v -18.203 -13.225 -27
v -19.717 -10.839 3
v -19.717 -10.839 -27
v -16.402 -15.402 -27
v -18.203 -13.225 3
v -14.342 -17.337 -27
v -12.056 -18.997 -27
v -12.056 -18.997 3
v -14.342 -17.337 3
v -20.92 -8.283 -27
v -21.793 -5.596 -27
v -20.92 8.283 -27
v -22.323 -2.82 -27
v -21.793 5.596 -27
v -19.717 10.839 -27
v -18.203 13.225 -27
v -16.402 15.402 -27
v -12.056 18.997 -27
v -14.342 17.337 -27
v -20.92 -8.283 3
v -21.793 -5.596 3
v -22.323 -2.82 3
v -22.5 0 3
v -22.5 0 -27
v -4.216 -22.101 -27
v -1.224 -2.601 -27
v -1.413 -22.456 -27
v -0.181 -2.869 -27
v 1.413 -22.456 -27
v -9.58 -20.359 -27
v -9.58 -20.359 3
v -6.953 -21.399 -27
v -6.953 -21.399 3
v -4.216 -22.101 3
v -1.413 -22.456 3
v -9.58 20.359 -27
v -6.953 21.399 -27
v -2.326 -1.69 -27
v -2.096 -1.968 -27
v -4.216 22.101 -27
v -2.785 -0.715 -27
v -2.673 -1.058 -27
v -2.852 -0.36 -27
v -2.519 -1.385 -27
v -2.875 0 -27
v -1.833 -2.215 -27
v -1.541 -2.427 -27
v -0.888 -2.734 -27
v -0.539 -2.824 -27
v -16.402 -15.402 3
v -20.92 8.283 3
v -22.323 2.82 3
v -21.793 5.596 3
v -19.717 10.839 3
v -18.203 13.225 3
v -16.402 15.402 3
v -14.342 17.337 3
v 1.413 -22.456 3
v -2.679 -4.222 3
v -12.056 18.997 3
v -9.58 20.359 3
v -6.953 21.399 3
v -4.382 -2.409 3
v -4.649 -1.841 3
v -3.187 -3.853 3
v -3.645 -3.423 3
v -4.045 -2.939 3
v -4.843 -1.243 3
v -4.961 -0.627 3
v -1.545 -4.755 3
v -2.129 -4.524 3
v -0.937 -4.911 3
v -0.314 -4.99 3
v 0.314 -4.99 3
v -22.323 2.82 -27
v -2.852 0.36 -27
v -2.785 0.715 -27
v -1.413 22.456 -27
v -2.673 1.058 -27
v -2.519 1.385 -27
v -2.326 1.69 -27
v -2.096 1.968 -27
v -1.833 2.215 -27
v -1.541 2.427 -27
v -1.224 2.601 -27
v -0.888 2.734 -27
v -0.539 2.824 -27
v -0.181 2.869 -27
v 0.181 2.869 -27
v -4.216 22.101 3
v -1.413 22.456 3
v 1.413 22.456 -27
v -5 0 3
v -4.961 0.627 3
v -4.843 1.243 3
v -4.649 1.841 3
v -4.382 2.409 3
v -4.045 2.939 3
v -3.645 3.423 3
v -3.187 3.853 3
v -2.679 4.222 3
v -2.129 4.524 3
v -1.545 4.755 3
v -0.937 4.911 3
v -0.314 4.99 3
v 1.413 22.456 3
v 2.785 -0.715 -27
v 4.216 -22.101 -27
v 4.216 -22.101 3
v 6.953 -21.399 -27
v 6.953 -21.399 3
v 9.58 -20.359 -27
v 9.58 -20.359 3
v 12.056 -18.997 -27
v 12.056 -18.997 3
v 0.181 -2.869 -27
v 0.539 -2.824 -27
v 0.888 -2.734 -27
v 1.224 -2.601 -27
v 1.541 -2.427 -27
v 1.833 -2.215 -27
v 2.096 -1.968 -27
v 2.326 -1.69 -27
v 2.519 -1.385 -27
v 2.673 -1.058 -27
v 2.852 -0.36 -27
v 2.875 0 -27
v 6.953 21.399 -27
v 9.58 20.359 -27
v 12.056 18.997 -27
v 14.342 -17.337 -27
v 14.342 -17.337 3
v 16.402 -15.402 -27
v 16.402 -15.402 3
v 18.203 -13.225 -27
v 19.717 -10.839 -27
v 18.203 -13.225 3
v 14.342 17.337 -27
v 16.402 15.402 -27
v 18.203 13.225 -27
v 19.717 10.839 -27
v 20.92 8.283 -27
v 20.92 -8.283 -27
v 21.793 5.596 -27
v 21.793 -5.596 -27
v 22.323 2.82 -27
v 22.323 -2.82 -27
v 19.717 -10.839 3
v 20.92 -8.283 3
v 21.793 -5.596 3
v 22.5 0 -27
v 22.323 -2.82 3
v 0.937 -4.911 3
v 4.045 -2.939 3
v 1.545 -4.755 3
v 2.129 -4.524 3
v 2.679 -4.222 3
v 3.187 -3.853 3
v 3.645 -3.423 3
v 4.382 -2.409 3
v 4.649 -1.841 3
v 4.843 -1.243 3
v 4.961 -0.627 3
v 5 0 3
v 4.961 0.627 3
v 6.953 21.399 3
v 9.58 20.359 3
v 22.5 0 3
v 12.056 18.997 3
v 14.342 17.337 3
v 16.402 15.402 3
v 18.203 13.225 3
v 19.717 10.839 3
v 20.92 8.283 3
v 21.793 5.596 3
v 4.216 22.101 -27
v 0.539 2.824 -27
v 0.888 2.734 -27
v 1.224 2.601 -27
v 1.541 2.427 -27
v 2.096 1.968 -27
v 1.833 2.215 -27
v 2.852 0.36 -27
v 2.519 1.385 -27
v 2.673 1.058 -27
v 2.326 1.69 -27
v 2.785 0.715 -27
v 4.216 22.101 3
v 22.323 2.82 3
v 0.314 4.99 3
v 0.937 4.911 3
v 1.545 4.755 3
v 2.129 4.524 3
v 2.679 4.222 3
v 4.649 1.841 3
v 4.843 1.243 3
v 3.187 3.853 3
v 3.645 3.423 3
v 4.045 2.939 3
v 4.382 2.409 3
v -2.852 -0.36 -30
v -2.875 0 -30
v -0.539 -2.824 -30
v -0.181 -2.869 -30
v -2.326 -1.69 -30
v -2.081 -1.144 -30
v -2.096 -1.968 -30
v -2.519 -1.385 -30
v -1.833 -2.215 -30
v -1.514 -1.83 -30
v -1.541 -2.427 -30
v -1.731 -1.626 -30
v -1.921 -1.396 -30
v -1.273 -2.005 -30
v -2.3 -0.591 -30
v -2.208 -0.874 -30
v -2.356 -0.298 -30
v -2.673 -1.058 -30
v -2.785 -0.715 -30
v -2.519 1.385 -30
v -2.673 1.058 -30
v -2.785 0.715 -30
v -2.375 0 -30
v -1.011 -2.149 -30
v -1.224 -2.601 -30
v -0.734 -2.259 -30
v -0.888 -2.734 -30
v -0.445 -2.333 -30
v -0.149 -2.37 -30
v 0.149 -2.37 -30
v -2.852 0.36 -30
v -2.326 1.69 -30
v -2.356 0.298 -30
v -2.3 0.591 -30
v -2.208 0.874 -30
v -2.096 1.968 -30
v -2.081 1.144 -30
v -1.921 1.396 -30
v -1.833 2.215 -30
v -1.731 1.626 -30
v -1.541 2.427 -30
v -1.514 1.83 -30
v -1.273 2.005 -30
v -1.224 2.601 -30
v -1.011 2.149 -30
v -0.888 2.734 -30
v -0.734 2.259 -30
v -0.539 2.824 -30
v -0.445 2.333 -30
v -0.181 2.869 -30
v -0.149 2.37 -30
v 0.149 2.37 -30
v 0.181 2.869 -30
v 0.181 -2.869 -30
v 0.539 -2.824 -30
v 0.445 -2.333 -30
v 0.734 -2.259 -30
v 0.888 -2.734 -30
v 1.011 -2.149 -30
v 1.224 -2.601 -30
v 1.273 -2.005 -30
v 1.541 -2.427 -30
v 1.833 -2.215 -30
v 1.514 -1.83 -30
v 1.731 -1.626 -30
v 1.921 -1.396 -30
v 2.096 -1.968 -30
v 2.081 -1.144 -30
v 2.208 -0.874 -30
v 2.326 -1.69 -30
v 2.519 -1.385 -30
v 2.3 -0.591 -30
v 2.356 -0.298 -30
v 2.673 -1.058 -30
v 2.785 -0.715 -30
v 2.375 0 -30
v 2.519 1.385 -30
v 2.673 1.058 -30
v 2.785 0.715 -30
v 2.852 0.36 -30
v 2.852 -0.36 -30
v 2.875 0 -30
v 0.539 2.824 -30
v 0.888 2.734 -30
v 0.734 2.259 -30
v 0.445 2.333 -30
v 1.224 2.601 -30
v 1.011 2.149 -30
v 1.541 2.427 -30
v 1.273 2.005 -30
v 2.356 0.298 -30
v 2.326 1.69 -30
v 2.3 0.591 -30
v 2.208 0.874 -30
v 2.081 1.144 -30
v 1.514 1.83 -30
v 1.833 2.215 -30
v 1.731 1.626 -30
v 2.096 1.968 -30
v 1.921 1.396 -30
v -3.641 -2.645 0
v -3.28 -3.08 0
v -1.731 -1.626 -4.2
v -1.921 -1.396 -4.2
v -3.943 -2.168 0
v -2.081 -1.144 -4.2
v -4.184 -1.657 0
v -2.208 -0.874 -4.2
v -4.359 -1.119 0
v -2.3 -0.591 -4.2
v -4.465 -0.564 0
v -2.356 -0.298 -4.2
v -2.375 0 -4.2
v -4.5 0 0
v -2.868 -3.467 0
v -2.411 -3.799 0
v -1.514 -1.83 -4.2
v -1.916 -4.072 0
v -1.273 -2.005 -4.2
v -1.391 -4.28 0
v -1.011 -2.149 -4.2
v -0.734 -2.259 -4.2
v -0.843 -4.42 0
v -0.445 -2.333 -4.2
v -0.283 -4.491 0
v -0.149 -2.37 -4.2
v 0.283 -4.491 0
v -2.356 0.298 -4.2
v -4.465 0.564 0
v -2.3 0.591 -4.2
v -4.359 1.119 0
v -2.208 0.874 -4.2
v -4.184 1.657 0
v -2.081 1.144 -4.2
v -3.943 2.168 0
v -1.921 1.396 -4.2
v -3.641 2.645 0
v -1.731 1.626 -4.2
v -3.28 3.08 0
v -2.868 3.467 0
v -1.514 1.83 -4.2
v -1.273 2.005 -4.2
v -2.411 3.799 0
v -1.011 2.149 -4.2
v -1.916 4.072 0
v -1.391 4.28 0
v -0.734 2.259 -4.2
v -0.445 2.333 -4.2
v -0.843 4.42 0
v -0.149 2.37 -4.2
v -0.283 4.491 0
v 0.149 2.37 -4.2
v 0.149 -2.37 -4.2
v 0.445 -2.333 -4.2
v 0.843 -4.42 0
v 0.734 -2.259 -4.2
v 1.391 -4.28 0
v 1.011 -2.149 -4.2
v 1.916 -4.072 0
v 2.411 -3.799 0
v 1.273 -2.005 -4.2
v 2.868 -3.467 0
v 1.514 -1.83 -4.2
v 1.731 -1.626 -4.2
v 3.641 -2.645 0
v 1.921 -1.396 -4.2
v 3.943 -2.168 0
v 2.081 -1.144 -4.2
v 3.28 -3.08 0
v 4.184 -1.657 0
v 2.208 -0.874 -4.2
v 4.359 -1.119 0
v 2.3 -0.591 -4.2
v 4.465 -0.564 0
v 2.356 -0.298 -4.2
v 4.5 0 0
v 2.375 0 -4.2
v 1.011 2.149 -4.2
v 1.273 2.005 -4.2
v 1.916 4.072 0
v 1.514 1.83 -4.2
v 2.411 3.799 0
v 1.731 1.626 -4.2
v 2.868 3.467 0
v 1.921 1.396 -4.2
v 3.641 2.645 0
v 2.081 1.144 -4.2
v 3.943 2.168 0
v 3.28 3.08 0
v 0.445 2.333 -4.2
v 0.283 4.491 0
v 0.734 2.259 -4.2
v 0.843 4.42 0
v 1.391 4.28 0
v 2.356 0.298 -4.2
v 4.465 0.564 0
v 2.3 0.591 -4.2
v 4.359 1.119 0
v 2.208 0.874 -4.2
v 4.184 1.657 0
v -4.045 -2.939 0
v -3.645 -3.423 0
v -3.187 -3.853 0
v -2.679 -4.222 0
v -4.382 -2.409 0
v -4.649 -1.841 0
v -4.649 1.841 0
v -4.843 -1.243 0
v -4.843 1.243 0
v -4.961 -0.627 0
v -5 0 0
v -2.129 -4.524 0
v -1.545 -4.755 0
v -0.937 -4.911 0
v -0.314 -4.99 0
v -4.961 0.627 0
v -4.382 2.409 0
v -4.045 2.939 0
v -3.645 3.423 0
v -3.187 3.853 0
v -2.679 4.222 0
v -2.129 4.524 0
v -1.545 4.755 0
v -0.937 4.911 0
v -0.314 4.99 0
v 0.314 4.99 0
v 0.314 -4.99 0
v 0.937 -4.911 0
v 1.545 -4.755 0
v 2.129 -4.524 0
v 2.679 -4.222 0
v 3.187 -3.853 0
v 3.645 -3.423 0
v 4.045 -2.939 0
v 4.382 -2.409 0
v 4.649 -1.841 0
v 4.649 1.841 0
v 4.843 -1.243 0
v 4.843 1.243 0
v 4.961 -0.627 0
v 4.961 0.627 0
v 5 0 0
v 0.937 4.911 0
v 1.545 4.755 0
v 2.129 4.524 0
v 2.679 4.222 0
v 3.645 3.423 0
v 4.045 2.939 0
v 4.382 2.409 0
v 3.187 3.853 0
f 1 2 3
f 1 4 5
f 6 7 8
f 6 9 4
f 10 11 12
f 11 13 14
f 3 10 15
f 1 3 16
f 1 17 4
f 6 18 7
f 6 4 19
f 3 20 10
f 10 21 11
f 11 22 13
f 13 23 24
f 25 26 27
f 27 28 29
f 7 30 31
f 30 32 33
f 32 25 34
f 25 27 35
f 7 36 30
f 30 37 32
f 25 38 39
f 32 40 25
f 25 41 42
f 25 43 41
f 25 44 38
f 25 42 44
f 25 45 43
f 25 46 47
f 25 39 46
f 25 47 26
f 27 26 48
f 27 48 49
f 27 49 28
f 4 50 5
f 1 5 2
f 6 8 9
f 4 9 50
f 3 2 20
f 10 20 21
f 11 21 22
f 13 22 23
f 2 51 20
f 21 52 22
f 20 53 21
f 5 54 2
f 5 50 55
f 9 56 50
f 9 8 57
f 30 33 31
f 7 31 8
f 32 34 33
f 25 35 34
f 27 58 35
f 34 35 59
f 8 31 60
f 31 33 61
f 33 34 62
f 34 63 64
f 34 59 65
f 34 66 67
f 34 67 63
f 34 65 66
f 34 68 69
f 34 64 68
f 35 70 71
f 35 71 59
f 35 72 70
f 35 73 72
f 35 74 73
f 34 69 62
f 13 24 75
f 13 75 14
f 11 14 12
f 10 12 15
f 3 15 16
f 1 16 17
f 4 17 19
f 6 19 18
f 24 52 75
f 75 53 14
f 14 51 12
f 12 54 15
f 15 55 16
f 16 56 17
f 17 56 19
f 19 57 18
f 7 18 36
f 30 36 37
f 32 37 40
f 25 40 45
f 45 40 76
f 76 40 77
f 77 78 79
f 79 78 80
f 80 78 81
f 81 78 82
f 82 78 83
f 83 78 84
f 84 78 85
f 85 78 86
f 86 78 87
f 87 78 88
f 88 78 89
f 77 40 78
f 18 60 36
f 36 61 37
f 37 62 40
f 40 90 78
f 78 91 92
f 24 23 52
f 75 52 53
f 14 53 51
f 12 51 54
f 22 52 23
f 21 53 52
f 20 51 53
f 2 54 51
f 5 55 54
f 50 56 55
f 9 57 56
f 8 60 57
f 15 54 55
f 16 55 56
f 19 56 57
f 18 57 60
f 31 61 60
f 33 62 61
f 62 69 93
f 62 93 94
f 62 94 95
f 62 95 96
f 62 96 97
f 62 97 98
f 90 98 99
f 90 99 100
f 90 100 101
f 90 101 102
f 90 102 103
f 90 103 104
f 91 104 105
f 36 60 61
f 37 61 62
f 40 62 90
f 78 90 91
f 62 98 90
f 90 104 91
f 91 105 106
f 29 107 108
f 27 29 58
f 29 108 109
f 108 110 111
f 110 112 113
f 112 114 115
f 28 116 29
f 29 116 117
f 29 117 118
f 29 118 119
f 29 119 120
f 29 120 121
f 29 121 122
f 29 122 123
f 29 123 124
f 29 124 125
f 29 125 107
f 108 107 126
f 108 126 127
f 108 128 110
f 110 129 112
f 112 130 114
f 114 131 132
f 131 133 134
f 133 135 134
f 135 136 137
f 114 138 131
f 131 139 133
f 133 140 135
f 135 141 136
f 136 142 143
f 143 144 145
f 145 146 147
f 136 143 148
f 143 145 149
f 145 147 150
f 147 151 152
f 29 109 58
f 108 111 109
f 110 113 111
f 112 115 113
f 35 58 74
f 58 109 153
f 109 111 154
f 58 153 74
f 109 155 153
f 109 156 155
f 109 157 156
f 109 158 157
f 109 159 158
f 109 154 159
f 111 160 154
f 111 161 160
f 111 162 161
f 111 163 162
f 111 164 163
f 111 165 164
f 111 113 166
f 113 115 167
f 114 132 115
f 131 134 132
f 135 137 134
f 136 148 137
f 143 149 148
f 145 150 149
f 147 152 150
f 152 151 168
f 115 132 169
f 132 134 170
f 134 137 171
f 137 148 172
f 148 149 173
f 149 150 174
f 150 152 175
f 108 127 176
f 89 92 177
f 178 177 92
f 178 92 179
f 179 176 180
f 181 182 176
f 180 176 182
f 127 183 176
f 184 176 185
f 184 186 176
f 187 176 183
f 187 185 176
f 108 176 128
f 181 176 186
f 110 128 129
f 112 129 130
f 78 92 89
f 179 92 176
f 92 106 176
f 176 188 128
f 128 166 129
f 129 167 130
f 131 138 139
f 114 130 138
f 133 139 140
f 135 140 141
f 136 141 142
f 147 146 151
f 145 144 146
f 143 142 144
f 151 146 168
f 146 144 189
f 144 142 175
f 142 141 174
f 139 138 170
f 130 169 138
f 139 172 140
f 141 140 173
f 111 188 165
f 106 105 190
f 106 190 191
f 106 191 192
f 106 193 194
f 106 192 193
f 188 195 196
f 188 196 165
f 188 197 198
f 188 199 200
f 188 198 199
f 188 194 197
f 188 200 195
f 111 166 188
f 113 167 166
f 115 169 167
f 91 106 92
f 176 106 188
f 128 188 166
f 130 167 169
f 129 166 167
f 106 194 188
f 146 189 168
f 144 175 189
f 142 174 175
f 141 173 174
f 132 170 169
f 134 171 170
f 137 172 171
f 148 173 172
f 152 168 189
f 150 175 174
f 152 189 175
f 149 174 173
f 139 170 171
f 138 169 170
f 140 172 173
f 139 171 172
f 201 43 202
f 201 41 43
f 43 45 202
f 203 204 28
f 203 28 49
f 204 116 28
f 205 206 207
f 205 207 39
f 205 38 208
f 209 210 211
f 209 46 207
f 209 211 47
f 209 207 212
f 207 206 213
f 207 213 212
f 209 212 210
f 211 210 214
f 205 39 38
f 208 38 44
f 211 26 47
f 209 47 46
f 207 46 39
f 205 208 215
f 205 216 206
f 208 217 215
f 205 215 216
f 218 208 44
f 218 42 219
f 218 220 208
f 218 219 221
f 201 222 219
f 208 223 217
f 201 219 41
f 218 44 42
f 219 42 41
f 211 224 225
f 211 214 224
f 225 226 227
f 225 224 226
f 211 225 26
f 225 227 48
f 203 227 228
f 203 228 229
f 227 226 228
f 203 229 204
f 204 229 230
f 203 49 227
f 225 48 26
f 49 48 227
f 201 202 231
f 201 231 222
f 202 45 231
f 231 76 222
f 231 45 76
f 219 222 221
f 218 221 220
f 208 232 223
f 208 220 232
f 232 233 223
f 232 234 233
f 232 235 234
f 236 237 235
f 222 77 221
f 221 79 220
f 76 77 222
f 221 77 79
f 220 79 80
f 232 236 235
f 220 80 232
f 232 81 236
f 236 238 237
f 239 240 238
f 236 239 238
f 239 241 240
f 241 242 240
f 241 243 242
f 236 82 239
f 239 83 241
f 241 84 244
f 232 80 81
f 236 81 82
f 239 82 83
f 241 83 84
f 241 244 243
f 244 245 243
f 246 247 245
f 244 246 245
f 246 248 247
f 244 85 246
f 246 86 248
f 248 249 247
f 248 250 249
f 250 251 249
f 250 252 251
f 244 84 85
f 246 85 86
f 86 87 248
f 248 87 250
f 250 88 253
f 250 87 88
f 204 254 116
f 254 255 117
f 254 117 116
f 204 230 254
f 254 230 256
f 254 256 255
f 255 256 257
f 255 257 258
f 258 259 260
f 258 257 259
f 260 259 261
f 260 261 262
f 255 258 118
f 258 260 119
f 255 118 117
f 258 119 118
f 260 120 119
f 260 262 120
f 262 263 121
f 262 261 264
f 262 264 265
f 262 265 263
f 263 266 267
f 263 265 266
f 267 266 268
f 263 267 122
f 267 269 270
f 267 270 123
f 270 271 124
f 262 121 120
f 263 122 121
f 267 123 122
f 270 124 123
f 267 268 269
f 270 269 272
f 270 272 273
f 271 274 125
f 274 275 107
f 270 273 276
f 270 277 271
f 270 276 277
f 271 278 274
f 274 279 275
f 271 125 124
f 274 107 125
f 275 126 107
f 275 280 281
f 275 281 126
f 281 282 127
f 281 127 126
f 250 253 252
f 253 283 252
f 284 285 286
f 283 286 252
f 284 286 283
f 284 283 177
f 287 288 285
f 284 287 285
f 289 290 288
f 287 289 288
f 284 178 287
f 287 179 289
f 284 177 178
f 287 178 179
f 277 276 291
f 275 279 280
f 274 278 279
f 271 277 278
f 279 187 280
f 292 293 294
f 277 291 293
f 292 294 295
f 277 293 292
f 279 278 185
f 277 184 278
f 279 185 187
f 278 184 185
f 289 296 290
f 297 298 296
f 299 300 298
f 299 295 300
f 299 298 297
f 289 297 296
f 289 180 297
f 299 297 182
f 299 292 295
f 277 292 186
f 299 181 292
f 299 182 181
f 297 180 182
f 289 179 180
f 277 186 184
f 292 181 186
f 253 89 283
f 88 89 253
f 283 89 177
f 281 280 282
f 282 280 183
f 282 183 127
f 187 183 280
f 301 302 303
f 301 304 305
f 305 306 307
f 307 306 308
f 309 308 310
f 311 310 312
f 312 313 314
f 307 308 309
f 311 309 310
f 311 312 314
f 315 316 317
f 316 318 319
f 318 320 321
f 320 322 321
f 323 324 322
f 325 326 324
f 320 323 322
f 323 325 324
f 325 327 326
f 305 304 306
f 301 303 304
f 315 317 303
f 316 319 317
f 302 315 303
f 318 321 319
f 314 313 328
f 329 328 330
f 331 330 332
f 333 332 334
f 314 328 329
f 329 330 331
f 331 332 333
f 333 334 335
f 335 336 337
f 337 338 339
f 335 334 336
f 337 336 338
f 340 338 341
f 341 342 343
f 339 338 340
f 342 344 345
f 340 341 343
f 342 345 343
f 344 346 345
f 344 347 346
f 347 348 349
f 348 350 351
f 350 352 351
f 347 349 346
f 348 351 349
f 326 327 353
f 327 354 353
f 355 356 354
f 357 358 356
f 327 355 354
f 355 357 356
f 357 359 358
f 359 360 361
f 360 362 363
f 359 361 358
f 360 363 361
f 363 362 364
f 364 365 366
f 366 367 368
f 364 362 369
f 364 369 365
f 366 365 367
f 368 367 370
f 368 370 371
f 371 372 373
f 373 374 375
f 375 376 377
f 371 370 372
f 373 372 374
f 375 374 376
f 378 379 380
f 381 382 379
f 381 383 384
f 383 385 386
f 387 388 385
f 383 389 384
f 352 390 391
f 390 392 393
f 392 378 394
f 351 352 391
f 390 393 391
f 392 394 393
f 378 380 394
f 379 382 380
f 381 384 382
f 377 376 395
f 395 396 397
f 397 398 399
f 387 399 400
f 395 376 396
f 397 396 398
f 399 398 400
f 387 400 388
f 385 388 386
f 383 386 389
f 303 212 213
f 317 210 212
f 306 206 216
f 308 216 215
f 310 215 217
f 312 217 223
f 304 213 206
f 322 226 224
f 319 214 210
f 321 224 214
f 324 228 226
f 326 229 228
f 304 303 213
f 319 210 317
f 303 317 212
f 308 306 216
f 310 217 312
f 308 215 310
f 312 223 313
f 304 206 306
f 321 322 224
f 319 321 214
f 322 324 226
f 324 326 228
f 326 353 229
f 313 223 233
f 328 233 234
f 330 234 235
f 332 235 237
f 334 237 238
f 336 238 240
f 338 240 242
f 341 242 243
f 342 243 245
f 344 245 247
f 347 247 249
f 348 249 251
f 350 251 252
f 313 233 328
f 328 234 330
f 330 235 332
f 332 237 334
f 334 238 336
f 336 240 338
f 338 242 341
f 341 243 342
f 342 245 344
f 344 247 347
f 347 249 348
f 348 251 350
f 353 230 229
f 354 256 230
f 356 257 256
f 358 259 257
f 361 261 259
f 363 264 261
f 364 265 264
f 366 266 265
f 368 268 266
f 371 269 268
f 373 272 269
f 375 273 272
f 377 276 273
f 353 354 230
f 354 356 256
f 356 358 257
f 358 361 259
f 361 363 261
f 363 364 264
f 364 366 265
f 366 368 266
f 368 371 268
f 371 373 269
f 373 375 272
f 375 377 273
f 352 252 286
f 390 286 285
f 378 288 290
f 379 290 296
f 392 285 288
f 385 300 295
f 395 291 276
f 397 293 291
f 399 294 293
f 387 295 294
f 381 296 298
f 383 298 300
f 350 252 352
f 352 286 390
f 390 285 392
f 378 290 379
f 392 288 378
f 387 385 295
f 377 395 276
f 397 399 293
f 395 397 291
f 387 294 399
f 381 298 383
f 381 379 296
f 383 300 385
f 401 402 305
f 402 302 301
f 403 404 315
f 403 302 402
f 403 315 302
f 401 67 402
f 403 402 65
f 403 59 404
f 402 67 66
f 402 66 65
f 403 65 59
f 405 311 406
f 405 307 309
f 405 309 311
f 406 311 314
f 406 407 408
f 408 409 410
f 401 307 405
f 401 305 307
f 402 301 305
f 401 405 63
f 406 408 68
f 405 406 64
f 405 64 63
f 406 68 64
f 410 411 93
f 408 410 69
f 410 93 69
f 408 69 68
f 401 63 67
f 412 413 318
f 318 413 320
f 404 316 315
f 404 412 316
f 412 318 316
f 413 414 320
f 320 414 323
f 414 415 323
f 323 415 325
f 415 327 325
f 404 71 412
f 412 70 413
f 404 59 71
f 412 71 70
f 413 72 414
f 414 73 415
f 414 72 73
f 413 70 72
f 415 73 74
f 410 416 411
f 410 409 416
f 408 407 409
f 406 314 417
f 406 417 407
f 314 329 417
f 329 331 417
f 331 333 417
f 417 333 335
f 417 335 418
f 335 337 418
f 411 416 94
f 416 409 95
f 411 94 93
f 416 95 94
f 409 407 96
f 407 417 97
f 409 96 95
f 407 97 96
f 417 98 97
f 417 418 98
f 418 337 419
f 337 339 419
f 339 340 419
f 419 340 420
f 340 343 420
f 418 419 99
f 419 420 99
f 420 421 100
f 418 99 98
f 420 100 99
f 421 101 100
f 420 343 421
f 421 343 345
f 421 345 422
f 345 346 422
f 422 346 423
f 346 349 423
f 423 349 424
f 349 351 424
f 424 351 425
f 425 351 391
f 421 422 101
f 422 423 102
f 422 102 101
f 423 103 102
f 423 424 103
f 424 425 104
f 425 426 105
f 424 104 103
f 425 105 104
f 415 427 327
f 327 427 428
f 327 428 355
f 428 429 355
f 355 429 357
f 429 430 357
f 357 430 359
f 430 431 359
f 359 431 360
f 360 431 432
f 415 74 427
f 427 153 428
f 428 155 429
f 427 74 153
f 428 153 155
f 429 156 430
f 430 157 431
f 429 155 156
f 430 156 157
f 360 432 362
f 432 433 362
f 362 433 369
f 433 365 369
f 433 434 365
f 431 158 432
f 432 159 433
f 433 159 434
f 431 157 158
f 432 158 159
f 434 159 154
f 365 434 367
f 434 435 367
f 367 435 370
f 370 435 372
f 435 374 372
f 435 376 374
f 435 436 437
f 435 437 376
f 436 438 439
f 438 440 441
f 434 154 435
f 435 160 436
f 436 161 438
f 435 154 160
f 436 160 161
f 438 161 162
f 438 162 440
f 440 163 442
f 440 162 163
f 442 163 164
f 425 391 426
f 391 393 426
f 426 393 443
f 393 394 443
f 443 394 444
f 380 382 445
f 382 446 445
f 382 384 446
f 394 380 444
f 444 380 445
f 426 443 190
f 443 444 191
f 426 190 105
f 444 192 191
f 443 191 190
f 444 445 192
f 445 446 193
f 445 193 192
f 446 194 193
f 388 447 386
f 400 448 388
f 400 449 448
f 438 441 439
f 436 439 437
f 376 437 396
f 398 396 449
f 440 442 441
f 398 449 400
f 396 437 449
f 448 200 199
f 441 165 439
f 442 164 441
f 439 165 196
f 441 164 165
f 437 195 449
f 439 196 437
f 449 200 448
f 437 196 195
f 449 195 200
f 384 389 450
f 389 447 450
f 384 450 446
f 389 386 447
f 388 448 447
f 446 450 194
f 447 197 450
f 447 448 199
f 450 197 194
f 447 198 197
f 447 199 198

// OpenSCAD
$fn = 50;


difference() {
	union() {
		translate(v = [0, 0, -27.0000000000]) {
			cylinder(h = 30, r = 22.5000000000);
		}
		#translate(v = [0, 0, -30.0000000000]) {
			cylinder(h = 30, r = 2.8750000000);
		}
	}
	union() {
		translate(v = [0, 0, 0]) {
			rotate(a = [0, 0, 0]) {
				difference() {
					union() {
						translate(v = [0, 0, -30.0000000000]) {
							cylinder(h = 30, r = 2.2500000000);
						}
						translate(v = [0, 0, -4.2000000000]) {
							cylinder(h = 4.2000000000, r1 = 2.3750000000, r2 = 4.5000000000);
						}
						translate(v = [0, 0, -30.0000000000]) {
							cylinder(h = 30, r = 2.3750000000);
						}
						translate(v = [0, 0, -30.0000000000]) {
							cylinder(h = 30, r = 2.2500000000);
						}
					}
					union();
				}
			}
		}
		#cylinder(h = 3, r = 5.0000000000);
	}
}
